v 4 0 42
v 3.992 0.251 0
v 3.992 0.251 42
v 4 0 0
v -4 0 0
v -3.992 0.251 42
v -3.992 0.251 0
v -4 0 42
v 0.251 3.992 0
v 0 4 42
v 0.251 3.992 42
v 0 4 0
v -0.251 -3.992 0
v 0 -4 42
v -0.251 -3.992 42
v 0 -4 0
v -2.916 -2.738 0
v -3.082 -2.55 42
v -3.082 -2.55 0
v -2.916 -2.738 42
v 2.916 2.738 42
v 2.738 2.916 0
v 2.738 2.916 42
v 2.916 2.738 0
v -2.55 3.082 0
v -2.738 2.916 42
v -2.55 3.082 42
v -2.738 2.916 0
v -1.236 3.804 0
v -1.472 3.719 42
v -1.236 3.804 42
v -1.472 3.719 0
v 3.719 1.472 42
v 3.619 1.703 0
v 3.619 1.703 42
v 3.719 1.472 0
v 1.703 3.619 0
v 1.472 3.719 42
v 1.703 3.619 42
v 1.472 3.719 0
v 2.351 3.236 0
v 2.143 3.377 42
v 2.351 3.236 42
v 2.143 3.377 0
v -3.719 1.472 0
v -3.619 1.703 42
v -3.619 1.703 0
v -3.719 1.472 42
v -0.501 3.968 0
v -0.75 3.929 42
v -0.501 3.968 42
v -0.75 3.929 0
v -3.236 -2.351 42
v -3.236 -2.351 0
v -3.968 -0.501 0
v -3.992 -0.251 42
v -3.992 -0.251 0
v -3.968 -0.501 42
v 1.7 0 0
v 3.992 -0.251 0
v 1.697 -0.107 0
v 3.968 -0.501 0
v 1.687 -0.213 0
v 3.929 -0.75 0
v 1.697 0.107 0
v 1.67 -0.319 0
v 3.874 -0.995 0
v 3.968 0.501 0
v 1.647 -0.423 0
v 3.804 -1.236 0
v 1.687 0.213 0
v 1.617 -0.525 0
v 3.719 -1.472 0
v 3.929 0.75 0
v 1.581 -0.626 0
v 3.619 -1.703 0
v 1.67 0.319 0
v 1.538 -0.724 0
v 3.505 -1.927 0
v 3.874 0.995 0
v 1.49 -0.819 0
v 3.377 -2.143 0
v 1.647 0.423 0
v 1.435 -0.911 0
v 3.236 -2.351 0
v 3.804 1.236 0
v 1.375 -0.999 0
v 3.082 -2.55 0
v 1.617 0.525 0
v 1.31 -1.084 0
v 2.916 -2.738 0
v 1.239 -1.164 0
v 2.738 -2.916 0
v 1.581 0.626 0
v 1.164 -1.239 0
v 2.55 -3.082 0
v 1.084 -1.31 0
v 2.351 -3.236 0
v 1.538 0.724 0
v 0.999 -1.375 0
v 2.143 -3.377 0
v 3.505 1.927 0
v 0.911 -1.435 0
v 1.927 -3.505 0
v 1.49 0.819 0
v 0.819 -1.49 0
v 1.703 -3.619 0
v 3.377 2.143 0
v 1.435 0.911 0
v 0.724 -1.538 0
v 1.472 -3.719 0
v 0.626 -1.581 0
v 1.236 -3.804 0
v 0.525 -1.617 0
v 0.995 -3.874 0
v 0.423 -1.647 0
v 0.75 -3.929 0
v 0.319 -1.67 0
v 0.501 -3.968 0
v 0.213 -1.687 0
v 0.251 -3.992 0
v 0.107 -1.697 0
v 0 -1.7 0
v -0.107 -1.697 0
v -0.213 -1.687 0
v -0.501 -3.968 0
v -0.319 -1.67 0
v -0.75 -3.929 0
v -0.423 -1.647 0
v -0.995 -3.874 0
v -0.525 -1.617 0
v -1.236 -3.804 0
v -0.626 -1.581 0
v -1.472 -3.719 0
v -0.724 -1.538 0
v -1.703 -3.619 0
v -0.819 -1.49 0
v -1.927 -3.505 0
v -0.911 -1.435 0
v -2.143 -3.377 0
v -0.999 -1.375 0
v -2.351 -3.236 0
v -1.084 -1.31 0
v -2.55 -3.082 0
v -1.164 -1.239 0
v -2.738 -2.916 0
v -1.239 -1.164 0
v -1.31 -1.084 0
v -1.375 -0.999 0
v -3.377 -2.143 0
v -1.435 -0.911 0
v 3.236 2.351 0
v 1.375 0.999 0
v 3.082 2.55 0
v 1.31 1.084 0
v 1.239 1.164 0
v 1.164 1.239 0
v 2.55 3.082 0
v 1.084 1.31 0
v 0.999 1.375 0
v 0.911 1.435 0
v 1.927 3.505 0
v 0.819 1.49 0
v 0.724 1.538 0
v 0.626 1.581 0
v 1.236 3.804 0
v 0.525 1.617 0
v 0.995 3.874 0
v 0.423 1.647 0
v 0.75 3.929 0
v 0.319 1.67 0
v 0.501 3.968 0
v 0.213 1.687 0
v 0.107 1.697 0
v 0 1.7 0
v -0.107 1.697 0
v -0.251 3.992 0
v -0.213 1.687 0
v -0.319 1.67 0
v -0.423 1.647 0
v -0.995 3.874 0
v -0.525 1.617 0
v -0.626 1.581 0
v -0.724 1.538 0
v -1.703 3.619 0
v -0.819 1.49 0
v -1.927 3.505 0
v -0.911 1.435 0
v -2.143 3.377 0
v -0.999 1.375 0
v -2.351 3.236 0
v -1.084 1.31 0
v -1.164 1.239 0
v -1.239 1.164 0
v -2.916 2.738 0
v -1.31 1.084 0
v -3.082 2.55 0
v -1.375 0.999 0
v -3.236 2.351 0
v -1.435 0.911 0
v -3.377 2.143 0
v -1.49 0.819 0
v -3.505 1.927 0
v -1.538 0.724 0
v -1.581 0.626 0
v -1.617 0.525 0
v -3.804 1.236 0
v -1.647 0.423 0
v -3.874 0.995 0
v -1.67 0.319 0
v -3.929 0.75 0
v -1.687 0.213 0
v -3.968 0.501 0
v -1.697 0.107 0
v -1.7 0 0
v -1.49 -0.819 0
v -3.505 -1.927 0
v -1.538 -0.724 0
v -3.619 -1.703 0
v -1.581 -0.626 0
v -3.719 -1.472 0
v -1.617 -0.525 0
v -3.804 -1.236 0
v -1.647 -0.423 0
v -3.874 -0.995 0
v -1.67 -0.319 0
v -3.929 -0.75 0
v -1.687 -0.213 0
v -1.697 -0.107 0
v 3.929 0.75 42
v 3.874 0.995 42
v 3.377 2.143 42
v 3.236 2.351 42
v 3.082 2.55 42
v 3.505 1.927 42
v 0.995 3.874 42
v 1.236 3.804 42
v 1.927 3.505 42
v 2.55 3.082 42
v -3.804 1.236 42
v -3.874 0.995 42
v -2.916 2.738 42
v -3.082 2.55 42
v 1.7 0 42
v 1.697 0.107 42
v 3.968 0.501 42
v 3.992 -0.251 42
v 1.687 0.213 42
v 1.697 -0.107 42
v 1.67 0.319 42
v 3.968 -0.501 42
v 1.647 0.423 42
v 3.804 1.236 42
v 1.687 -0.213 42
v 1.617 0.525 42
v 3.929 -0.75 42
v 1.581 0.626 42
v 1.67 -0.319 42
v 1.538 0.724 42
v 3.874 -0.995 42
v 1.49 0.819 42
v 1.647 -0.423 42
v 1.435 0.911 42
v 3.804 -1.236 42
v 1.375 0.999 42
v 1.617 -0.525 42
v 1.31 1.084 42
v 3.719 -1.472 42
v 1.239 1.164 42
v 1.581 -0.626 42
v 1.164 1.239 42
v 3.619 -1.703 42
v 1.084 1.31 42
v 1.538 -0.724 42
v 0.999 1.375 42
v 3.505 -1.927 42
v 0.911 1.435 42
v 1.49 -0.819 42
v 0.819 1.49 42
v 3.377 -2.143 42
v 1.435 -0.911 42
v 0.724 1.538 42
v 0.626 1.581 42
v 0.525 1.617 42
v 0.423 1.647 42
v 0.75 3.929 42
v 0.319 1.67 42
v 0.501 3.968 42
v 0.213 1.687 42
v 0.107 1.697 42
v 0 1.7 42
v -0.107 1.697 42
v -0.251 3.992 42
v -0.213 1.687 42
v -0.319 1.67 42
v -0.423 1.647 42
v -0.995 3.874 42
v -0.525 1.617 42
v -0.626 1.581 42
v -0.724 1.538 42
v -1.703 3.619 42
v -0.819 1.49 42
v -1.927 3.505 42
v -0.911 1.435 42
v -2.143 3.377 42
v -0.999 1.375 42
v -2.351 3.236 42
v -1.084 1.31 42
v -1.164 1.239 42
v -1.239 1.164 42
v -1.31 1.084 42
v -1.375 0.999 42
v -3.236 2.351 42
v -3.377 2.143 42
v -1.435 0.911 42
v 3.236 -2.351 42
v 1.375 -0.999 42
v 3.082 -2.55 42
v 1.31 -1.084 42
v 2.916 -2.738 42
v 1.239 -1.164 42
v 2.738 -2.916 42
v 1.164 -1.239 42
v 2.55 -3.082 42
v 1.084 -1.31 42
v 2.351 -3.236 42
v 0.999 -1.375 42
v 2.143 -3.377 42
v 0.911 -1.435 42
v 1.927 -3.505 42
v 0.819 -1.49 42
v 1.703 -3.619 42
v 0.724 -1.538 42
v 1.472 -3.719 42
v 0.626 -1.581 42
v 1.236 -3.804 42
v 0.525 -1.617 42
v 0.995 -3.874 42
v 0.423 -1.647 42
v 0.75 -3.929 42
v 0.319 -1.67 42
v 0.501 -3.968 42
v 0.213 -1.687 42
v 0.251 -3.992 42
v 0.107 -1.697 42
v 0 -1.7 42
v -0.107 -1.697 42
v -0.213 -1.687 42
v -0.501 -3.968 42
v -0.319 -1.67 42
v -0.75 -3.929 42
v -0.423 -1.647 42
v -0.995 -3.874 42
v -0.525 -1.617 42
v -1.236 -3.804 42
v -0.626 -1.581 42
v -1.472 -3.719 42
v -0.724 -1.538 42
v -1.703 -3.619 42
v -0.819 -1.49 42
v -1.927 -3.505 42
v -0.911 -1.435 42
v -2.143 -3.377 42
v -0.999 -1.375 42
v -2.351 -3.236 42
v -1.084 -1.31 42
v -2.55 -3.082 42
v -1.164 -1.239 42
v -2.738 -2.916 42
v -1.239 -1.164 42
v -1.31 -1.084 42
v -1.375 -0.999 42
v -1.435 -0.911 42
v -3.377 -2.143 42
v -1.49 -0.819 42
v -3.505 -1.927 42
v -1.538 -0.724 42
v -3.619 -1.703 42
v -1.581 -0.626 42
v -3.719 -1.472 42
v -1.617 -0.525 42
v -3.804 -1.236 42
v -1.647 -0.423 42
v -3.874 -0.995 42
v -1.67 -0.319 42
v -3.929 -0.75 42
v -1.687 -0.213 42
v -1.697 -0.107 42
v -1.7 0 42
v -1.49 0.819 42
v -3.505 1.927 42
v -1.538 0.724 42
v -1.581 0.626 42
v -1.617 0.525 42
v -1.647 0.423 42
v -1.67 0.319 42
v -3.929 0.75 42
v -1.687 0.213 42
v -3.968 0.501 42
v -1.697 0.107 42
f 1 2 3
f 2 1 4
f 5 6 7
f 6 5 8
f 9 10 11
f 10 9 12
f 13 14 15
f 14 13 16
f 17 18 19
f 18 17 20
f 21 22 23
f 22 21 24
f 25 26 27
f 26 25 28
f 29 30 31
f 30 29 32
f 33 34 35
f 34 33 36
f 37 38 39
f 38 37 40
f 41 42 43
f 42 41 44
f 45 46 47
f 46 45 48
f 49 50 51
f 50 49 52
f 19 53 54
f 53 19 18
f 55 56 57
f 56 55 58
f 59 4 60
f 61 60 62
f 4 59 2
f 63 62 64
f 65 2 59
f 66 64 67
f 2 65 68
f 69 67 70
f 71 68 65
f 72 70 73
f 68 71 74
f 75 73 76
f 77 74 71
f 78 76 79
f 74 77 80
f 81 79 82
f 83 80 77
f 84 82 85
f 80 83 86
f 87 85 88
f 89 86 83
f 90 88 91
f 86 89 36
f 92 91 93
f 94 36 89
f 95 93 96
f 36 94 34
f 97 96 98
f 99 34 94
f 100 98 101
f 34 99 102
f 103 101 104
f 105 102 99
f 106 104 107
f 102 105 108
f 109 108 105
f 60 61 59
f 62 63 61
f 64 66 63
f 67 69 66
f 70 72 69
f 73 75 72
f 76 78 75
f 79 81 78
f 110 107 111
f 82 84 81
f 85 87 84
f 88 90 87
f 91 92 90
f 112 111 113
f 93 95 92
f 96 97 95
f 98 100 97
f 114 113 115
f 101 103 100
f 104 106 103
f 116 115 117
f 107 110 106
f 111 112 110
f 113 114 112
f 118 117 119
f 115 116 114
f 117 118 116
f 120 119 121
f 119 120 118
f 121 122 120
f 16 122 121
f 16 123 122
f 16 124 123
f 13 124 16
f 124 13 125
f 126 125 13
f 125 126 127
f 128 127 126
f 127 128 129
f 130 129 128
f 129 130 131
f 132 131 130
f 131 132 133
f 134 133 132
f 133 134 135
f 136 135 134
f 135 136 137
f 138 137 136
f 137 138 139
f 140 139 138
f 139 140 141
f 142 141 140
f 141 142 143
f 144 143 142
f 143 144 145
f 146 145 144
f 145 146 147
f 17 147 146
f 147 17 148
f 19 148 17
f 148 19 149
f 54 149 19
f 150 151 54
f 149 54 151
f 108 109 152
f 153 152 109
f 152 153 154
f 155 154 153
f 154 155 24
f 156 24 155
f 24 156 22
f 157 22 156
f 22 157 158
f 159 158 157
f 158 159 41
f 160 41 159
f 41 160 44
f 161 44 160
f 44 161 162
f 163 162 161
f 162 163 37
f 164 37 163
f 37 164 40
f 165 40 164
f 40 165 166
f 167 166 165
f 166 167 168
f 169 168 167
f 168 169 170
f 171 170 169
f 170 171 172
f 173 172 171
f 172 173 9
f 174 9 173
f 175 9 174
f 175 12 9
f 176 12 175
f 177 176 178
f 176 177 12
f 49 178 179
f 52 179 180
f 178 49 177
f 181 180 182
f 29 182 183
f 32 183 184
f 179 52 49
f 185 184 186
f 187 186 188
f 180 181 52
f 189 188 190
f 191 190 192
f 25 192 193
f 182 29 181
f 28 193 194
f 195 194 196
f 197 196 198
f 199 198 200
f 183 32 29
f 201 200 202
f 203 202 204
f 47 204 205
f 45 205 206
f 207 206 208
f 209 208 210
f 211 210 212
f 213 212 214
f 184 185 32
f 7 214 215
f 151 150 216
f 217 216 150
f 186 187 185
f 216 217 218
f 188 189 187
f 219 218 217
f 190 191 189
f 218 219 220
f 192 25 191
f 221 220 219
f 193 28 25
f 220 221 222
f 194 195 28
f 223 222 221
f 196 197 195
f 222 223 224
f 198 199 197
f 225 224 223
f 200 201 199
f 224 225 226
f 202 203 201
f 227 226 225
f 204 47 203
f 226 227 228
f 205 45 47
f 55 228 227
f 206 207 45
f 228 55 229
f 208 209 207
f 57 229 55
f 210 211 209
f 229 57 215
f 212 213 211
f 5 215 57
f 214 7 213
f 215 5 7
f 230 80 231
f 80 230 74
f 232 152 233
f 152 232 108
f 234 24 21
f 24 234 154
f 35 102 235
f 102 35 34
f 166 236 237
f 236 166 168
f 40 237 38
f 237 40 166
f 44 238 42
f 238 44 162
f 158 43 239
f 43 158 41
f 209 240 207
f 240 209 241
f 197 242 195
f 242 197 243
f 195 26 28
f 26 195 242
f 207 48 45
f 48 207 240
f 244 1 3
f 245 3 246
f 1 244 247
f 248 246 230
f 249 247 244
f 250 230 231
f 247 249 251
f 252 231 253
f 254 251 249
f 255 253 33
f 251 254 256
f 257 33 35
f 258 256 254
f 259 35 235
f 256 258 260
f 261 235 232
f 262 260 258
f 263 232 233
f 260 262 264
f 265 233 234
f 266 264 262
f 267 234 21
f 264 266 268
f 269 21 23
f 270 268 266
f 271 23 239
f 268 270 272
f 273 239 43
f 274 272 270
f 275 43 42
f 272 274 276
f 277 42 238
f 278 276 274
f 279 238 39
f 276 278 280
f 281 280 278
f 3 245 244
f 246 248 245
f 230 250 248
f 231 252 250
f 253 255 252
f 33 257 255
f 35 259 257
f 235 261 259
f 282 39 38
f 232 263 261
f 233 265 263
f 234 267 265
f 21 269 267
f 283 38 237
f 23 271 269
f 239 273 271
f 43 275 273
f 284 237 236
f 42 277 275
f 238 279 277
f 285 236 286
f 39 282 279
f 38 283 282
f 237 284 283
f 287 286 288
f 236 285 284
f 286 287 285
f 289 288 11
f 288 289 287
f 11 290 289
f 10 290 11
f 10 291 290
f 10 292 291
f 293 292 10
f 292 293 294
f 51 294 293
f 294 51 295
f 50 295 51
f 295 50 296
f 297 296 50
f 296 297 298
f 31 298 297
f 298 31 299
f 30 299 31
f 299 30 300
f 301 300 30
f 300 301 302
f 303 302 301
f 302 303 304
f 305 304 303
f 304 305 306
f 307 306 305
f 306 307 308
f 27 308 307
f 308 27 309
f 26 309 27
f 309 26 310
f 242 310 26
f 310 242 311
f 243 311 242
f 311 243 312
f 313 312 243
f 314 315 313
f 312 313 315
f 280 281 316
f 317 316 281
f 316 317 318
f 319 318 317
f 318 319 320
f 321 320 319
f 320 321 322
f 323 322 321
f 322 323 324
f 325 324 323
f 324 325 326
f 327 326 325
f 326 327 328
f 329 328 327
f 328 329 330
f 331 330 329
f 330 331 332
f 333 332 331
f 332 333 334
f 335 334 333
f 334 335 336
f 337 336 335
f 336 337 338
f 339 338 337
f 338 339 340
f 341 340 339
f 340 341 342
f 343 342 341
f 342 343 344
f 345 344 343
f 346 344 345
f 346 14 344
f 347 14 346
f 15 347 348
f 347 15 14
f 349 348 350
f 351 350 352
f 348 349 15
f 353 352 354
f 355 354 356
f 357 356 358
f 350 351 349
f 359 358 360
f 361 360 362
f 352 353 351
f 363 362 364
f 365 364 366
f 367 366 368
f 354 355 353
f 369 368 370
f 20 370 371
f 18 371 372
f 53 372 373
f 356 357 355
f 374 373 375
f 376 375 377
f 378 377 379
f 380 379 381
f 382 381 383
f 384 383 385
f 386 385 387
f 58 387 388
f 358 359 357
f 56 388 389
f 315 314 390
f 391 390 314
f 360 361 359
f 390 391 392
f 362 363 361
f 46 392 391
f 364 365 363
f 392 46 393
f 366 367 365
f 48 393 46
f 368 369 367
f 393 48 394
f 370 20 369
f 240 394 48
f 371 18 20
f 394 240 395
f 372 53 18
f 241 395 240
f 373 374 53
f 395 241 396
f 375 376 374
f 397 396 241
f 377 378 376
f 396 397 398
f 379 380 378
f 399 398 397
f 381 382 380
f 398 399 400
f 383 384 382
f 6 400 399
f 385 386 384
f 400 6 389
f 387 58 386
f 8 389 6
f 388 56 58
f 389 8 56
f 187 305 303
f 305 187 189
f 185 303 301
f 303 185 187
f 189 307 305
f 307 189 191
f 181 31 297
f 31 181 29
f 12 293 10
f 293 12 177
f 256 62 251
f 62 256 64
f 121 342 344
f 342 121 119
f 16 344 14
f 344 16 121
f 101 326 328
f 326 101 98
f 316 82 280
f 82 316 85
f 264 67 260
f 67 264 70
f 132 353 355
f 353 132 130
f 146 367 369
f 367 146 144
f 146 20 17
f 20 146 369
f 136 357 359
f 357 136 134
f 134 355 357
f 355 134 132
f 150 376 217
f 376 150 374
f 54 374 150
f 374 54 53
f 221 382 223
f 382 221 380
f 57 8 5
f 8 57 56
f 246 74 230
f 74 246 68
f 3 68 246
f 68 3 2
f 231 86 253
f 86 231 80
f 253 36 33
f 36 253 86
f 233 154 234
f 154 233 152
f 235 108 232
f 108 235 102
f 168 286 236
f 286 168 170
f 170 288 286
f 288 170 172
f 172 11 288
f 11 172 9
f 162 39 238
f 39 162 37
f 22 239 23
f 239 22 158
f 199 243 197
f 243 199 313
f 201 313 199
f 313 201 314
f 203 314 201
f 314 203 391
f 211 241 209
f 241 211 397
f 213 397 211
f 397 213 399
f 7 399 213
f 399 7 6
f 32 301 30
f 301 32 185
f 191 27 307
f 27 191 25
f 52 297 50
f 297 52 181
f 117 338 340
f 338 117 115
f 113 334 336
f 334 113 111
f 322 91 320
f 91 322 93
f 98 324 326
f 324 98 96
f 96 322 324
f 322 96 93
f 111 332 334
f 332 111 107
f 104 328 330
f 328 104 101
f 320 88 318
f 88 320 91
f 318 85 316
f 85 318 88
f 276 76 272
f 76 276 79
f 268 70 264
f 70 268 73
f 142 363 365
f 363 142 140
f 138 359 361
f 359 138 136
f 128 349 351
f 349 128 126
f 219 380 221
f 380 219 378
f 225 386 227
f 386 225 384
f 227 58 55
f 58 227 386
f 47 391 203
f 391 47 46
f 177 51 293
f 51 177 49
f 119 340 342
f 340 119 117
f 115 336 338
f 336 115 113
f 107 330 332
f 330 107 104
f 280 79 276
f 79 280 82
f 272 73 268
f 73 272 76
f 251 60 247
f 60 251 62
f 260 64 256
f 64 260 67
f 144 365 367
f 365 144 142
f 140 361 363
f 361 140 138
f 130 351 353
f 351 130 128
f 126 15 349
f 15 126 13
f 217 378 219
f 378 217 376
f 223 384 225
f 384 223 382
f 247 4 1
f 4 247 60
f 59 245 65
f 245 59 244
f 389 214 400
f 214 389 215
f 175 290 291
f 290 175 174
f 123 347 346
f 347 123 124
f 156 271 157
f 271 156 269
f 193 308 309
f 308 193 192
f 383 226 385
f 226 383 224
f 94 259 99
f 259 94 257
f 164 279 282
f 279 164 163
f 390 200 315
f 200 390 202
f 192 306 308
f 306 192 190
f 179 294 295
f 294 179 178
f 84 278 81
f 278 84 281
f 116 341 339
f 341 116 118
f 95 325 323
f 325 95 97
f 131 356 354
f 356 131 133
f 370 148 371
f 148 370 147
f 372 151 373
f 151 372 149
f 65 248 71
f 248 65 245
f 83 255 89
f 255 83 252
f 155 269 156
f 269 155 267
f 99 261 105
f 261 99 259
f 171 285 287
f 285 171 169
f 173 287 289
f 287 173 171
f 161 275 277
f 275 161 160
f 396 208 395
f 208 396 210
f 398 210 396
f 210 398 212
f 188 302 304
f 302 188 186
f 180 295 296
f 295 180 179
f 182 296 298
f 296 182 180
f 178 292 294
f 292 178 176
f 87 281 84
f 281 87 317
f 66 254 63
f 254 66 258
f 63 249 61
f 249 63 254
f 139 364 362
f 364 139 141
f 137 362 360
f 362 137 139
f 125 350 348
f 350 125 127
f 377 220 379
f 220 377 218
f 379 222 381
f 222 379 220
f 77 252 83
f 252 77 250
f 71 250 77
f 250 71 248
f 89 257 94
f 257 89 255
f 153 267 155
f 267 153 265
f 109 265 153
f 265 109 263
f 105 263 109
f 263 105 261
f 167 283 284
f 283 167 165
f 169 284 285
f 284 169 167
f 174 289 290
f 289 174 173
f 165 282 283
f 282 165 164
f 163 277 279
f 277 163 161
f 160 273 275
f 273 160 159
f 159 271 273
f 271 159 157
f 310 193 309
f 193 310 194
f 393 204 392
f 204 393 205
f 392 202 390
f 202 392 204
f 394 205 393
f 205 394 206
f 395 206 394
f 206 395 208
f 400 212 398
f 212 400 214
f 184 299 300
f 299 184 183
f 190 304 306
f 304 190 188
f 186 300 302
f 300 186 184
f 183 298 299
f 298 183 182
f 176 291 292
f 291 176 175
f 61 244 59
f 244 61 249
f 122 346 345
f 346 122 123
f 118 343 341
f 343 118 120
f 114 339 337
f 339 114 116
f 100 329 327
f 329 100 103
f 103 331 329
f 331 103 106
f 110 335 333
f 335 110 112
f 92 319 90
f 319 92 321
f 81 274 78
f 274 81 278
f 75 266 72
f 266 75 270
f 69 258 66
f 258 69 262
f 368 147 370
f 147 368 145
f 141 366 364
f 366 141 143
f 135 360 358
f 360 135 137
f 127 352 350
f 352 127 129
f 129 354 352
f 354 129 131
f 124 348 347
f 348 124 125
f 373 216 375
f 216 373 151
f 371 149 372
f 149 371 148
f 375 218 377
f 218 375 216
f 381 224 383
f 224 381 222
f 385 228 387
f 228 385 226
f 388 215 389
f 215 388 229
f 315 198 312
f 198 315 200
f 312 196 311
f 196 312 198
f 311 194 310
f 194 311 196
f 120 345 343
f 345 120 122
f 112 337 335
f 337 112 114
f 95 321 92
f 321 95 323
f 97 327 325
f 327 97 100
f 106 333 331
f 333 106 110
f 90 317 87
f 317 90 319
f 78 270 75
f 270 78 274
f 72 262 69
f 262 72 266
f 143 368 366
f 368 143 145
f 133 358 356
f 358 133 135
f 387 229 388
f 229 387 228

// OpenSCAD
// cyril Roudot 20 aout 2017
// http://violettes.org

$fn=100;

r_colonette = 4;  // column radius
h_colonette = 42;  // column height
r_trou_colonette = 1.7;  // column radius internal, suitable to freely introduce a M3 screw

//column
module colonette ()
{
    difference(){
            cylinder(h=h_colonette,r=r_colonette,center= false);
            cylinder(h=h_colonette,r=r_trou_colonette,center= false);
};
}
 



//final part


                colonette();

//end
